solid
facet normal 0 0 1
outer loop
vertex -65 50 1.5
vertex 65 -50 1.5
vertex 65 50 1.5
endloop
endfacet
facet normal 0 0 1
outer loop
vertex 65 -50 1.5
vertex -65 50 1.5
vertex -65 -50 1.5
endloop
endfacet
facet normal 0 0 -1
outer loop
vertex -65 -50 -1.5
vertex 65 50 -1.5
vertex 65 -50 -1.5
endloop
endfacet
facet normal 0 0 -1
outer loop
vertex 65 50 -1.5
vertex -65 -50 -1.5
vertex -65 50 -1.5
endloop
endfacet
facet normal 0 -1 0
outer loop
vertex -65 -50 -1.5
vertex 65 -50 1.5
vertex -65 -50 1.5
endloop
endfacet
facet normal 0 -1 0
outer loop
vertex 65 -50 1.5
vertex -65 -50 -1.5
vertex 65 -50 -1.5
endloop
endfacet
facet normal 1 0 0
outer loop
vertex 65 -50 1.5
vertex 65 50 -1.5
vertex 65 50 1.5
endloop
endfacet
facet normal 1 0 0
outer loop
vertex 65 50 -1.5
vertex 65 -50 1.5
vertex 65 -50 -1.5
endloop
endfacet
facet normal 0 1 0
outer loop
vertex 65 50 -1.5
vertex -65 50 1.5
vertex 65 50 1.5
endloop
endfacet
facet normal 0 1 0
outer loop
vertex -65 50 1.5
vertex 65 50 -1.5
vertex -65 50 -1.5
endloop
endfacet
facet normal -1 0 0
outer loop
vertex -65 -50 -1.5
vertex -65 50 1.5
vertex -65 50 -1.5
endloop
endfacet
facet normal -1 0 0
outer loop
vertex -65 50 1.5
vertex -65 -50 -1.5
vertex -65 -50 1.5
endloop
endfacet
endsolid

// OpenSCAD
// ========================================
// a 130 x 100 x 3 mm plate
// NeuroCAD canonical IR; dimensions are millimetres
// ========================================
$fn = 48;

cube(size=[130, 100, 3], center=true);
